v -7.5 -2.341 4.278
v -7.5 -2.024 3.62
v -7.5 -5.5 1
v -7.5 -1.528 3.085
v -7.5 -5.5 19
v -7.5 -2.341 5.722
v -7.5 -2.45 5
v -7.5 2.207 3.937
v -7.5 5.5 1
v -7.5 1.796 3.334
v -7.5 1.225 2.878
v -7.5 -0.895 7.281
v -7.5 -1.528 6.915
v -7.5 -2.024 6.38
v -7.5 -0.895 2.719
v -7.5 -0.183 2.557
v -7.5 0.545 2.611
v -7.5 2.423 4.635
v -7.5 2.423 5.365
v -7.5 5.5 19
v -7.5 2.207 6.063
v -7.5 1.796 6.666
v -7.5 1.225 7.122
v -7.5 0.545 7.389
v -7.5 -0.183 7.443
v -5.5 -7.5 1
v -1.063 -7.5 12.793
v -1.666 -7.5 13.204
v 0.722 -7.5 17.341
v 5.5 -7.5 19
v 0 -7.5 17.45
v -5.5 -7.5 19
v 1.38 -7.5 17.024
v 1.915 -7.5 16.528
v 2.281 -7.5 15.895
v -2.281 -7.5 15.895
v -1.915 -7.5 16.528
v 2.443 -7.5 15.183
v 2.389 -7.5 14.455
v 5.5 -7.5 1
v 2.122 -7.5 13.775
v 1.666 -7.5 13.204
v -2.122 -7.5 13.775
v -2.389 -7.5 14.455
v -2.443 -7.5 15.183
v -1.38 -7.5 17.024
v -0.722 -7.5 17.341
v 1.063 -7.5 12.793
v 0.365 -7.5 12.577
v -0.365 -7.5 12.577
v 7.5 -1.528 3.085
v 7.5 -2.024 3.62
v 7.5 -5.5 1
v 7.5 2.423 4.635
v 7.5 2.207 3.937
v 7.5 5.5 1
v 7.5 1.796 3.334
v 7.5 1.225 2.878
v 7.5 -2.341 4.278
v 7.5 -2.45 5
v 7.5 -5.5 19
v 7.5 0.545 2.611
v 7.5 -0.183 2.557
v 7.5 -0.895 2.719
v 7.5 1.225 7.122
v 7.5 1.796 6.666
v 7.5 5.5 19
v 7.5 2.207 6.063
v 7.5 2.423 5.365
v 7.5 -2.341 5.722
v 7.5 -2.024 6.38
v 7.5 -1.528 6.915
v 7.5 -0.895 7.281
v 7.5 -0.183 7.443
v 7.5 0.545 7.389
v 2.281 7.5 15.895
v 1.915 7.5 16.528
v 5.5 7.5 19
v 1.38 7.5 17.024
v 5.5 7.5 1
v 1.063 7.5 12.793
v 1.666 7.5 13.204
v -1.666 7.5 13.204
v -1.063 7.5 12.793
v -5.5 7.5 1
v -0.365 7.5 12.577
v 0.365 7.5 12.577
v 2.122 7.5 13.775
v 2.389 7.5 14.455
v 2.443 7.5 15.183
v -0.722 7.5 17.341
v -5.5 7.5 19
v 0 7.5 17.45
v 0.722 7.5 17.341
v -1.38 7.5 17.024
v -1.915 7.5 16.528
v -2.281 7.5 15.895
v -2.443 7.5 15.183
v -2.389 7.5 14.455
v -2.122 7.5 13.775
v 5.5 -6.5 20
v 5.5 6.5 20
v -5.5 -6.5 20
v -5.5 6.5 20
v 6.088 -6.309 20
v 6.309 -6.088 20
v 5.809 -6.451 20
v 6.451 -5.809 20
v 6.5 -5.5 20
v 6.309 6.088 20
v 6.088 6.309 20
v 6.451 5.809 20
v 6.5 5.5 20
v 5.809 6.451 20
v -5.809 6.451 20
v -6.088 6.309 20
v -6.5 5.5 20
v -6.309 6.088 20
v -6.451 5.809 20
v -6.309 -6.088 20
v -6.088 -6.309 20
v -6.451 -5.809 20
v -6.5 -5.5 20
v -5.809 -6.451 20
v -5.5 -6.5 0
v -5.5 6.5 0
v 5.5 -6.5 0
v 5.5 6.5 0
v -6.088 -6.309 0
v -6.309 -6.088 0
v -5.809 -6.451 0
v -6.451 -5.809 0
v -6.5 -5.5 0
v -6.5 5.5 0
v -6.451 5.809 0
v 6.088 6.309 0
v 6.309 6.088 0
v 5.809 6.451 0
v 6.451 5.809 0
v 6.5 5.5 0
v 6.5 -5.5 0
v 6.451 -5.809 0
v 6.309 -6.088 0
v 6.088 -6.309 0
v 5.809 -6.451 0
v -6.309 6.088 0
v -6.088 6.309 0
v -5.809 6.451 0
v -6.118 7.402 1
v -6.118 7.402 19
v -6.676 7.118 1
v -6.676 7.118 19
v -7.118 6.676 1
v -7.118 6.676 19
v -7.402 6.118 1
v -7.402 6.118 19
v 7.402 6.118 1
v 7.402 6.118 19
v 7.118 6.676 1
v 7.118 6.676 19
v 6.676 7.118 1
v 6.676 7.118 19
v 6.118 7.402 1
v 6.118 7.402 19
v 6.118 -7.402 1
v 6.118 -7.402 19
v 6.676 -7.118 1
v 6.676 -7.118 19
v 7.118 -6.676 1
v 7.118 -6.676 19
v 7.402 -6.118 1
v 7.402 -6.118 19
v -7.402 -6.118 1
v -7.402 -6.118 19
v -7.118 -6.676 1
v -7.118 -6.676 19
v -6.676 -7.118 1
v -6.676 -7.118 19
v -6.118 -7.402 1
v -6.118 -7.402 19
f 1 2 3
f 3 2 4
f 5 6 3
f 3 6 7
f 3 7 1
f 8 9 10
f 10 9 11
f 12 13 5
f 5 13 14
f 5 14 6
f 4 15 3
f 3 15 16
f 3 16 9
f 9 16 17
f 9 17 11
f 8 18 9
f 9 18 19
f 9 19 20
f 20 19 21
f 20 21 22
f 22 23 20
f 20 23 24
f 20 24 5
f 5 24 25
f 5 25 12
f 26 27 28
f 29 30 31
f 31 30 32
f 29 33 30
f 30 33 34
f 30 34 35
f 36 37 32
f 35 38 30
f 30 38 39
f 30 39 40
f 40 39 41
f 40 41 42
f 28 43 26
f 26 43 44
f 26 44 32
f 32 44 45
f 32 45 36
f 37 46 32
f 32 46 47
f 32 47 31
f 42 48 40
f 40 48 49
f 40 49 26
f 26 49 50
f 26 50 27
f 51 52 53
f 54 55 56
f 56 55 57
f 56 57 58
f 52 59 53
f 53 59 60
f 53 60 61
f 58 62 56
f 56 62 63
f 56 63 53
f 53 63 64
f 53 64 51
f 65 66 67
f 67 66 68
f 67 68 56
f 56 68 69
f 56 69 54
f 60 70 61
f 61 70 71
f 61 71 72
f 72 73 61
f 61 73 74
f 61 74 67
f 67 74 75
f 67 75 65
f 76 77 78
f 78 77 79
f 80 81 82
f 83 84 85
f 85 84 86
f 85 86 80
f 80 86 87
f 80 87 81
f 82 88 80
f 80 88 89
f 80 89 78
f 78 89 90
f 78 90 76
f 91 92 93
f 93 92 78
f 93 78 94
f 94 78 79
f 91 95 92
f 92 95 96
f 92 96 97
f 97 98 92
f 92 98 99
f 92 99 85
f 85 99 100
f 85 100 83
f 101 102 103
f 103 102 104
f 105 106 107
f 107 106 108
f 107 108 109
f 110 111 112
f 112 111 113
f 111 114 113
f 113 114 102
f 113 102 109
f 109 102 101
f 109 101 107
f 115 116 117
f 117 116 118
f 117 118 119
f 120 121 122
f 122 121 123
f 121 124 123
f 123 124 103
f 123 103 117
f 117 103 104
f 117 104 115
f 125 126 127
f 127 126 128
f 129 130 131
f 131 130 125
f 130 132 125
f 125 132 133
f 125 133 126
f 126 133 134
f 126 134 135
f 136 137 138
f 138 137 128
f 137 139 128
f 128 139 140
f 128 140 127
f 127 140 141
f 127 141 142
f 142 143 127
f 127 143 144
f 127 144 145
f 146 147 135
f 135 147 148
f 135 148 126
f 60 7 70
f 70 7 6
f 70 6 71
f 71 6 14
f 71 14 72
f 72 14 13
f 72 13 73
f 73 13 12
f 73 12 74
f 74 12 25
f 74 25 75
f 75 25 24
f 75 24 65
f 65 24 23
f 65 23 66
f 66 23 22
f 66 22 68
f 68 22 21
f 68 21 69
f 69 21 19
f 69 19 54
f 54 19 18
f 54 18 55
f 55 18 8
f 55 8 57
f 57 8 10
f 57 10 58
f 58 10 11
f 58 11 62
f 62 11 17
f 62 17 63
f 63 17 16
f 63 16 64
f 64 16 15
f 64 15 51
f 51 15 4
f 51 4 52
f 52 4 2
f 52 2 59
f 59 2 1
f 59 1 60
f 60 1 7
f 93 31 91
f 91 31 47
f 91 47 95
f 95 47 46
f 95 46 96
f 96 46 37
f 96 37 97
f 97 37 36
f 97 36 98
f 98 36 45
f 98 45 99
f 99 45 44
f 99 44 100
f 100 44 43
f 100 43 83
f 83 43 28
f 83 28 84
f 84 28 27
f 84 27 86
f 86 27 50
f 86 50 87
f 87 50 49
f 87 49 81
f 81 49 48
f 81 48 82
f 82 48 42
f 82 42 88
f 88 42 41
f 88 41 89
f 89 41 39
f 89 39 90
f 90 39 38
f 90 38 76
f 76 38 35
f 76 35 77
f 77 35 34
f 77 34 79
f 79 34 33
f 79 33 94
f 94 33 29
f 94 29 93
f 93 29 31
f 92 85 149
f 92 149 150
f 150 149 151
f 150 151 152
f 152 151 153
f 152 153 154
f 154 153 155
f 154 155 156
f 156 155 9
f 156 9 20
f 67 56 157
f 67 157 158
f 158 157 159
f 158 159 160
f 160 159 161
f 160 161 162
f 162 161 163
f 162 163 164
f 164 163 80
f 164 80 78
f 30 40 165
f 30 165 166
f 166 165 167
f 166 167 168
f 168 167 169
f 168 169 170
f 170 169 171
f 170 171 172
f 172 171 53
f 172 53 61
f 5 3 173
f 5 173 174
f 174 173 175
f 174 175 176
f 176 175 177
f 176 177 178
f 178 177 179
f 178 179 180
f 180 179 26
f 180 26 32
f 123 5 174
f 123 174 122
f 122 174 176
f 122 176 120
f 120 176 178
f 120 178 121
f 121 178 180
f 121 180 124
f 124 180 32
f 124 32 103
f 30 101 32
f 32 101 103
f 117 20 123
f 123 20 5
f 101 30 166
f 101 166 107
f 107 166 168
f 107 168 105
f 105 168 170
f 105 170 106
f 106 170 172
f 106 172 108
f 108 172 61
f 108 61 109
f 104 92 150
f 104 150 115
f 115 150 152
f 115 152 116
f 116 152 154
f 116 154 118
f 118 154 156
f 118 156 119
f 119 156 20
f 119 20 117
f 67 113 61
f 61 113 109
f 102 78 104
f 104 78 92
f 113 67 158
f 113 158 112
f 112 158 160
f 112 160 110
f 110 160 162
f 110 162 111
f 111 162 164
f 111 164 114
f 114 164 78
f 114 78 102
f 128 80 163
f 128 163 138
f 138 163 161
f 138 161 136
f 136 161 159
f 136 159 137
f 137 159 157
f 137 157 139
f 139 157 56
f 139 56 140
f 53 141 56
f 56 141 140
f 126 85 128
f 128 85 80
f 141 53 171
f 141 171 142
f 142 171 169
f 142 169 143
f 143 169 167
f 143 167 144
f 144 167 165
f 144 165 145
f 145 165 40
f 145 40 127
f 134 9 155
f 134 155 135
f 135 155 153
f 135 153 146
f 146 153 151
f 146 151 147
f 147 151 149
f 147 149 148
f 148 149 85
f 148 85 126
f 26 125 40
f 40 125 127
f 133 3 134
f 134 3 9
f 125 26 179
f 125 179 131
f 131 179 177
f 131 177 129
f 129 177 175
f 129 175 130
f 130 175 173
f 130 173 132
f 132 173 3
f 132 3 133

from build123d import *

# Parameters (mm, degrees)
SKETCH_1_W          = 15
SKETCH_1_H          = 15
EXTRUDE_1_DEPTH     = 20
SKETCH_2_R          = 2.45
CUT_EXTRUDE_1_DEPTH = 16
SKETCH_3_R          = 2.45
CUT_EXTRUDE_2_DEPTH = 16
FILLET_1_R          = 2
CHAMFER_1_SIZE      = 1


with BuildPart() as part:
    # ｽｹｯﾁ1 → ﾎﾞｽ - 押し出し1 (new body)
    with BuildSketch(Plane.XY):
        Rectangle(SKETCH_1_W, SKETCH_1_H)
    extrude(amount=EXTRUDE_1_DEPTH)

    # ｽｹｯﾁ2 → ｶｯﾄ - 押し出し1 (cut, through all)
    with BuildSketch(Plane(origin=(7.5, 0, 0), x_dir=(0, 0, -1), z_dir=(1, 0, 0))):
        with Locations((-5, 0)):
            Circle(SKETCH_2_R)
    extrude(amount=-CUT_EXTRUDE_1_DEPTH, mode=Mode.SUBTRACT)

    # ｽｹｯﾁ3 → ｶｯﾄ - 押し出し2 (cut, through all)
    with BuildSketch(Plane(origin=(0, 7.5, 0), x_dir=(1, 0, 0), z_dir=(0, 1, 0))):
        with Locations((0, -15)):
            Circle(SKETCH_3_R)
    extrude(amount=-CUT_EXTRUDE_2_DEPTH, mode=Mode.SUBTRACT)

    # ﾌｨﾚｯﾄ1
    fillet_1_edges = [part.edges().sort_by_distance(p)[0] for p in [
        (7.5, -7.5, 10),
        (-7.5, -7.5, 10),
        (-7.5, 7.5, 10),
        (7.5, 7.5, 10),
    ]]
    fillet(fillet_1_edges, radius=FILLET_1_R)

    # 面取り1
    chamfer_1_edges = [part.edges().sort_by_distance(p)[0] for p in [
        (7.5, 0, 0),
        (7.5, 0, 20),
        (0, -7.5, 0),
        (-7.5, 0, 0),
        (0, 7.5, 0),
        (6.914213562, 6.914213562, 0),
        (-6.914213562, 6.914213562, 0),
        (-6.914213562, -6.914213562, 0),
        (6.914213562, -6.914213562, 0),
        (0, -7.5, 20),
        (0, 7.5, 20),
        (-7.5, 0, 20),
        (6.914213562, 6.914213562, 20),
        (-6.914213562, 6.914213562, 20),
        (-6.914213562, -6.914213562, 20),
        (6.914213562, -6.914213562, 20),
    ]]
    chamfer(chamfer_1_edges, length=CHAMFER_1_SIZE)


solid = part.part
